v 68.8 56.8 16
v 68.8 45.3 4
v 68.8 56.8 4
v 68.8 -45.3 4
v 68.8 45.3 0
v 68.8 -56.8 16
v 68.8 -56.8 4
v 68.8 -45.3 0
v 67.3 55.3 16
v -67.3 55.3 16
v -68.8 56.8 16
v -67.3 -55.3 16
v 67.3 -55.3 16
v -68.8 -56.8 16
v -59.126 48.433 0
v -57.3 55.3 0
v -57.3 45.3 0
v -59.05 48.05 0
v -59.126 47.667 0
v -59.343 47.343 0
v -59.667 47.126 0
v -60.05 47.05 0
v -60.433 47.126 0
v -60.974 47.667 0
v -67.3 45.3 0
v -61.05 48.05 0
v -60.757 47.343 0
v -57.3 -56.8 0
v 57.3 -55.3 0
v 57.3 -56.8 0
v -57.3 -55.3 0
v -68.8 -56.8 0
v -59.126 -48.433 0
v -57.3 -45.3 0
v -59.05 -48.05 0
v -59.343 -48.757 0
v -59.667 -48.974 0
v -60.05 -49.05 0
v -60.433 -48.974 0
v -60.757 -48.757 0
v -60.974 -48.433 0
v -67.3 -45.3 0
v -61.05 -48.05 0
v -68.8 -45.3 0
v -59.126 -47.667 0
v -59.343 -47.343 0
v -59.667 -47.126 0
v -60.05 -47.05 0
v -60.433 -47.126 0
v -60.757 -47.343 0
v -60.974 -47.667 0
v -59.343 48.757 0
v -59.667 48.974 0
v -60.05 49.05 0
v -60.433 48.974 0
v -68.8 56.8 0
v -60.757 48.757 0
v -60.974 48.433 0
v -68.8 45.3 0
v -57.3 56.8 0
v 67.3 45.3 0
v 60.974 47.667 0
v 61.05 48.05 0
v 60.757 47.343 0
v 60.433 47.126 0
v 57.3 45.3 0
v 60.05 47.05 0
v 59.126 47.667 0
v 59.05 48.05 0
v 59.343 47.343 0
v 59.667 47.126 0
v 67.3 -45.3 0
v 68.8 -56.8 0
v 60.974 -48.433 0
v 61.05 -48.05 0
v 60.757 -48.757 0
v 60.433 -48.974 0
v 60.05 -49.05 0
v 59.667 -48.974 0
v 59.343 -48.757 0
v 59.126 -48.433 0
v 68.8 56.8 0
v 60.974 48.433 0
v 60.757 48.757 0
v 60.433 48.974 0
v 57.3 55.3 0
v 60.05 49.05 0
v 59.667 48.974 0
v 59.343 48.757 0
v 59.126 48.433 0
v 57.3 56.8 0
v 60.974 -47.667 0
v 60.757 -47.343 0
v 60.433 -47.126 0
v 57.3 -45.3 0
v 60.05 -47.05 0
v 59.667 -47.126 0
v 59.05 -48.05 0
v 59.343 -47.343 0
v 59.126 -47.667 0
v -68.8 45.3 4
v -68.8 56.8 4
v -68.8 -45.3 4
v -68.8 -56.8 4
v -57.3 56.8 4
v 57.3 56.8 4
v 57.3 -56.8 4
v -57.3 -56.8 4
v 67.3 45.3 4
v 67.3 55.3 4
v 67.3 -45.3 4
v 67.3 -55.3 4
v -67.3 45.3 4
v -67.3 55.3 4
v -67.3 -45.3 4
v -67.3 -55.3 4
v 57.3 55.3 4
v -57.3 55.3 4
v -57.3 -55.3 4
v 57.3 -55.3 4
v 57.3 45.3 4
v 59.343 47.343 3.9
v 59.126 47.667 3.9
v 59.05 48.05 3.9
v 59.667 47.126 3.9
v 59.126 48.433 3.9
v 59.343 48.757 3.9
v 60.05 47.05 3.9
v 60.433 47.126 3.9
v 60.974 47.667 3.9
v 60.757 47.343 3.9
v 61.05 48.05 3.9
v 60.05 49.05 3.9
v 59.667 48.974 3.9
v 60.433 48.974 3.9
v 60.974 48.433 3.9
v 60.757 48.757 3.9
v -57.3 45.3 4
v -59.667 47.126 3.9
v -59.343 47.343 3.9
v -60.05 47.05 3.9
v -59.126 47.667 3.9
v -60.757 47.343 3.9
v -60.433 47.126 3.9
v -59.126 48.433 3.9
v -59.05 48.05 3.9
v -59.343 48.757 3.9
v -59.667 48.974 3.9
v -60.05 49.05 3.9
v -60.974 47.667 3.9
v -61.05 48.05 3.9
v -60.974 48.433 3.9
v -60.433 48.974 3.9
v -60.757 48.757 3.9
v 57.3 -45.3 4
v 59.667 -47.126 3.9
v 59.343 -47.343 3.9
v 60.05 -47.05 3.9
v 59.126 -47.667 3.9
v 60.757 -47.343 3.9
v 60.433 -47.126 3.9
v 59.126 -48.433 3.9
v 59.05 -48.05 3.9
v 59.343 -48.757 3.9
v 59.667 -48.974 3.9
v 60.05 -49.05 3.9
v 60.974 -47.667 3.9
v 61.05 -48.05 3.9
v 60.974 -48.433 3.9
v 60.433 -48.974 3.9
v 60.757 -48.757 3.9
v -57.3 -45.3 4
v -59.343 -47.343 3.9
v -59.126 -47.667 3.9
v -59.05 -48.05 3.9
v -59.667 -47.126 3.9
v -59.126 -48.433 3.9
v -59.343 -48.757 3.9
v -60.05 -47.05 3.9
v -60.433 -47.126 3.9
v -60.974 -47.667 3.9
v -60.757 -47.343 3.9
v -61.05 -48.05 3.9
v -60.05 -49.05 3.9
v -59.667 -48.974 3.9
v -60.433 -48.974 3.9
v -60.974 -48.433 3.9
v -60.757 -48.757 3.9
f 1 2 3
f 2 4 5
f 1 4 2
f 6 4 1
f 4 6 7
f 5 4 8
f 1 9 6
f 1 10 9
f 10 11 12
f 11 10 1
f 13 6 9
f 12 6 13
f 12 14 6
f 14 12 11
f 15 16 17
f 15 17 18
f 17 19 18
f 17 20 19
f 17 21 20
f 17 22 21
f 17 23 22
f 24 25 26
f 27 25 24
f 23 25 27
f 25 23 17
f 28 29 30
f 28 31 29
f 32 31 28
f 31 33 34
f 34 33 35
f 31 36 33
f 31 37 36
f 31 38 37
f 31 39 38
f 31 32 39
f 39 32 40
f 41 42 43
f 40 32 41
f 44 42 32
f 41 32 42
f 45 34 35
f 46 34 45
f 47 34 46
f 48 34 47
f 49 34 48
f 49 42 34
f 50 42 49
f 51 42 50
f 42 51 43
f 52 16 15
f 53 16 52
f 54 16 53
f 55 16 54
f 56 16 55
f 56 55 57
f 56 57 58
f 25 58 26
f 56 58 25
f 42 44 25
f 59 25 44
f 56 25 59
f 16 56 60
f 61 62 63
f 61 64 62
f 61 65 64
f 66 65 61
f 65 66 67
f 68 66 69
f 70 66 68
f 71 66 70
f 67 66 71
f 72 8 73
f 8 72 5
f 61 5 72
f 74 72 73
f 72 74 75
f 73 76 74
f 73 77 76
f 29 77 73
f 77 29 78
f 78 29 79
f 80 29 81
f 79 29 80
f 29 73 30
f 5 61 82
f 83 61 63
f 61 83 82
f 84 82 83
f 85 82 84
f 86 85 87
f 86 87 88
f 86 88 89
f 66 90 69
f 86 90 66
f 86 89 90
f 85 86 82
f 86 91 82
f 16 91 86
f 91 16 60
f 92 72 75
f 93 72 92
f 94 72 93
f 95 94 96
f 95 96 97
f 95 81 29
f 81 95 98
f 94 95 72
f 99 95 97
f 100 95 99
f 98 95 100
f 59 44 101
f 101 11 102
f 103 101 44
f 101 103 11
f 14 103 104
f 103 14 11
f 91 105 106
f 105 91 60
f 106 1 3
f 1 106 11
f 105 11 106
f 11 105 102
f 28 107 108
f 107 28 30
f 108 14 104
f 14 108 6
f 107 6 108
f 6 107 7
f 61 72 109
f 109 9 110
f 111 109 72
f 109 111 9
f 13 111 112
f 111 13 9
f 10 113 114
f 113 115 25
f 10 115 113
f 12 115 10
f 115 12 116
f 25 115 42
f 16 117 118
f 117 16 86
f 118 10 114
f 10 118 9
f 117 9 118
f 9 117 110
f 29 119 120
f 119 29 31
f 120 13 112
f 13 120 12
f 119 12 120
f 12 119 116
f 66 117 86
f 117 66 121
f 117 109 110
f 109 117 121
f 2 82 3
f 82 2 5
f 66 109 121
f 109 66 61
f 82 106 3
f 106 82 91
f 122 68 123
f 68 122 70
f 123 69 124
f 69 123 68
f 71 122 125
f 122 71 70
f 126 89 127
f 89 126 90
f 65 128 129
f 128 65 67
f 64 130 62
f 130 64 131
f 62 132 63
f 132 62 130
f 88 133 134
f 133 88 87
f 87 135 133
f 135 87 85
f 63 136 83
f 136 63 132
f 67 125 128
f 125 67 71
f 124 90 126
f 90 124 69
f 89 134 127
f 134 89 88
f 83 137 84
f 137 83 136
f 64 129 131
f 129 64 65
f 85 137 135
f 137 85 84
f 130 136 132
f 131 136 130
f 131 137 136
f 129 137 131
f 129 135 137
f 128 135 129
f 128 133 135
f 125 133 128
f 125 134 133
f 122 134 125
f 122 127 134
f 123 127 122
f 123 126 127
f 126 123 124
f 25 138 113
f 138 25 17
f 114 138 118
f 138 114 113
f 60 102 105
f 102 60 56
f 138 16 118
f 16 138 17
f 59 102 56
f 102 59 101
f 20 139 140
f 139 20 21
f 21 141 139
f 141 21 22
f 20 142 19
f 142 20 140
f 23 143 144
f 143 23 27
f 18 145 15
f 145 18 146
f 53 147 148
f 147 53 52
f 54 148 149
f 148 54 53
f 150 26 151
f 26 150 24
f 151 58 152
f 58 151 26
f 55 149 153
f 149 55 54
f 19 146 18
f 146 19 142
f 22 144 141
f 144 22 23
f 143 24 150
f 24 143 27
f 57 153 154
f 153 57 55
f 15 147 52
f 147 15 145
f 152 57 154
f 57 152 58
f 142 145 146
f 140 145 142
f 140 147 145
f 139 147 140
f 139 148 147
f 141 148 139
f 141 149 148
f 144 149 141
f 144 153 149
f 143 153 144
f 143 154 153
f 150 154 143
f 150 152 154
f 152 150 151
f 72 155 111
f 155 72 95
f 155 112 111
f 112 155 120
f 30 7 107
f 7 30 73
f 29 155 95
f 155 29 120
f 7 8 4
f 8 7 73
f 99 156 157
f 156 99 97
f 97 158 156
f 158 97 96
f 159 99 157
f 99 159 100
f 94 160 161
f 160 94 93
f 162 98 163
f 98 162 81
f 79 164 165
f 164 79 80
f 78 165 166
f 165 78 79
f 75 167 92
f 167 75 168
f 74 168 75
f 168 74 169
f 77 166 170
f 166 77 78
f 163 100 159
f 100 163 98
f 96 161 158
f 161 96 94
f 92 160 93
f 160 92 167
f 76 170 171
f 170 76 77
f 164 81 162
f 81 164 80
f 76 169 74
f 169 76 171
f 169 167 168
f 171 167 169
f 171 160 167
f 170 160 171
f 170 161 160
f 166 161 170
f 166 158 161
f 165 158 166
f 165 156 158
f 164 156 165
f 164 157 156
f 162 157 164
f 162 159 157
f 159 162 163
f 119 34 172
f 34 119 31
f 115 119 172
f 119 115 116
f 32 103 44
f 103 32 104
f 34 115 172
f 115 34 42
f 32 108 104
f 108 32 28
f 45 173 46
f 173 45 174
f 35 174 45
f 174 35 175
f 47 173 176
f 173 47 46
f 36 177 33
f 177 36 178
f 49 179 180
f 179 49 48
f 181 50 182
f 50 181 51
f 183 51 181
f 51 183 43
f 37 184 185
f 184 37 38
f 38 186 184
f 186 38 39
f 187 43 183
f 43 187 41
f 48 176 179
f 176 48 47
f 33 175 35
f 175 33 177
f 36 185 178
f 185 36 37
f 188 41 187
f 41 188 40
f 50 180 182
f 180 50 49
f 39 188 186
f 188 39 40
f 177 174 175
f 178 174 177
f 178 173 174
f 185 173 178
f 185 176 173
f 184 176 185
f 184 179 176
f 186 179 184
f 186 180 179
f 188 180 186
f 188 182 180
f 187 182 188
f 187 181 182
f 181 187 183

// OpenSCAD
// file: consts.scad
//    consts.scad
//    Constant values for OpenSCAD model 
//
//    Copyright (C) 2026 Clear Creek Scientific
//
//    This program is free software: you can redistribute it and/or modify
//    it under the terms of the GNU General Public License as published by
//    the Free Software Foundation, either version 3 of the License, or
//    (at your option) any later version.
//
//    This program is distributed in the hope that it will be useful,
//    but WITHOUT ANY WARRANTY; without even the implied warranty of
//    MERCHANTABILITY or FITNESS FOR A PARTICULAR PURPOSE.  See the
//    GNU General Public License for more details.
//
//    You should have received a copy of the GNU General Public License
//    along with this program.  If not, see <https://www.gnu.org/licenses/>.

WALL_WIDTH = 1.5;
TAB_WIDTH = 8;
HALF_TAB_WIDTH = 0.5 * TAB_WIDTH;
TAB_HOLE_RADIUS = 1;
TAB_CORNER_RADIUS=1;
DRAIN_HOLE_HEIGHT = 5.0;
DRAIN_HOLE_RADIUS = 2.0;
SCREW_HOLE_HEIGHT = 2.0 * WALL_WIDTH;
SCREW_HOLE_RADIUS = 1.0;
SCREW_HEAD_HEIGHT = 0.5*WALL_WIDTH;
SCREW_HEAD_RADIUS = 2.5;

BATTERY_INNER_X_DIM = 69.2;
BATTERY_INNER_Y_DIM = 19.0;
BATTERY_WALL_HEIGHT = BATTERY_INNER_Y_DIM + WALL_WIDTH + 5.0;
BATTERY_OUTER_X_DIM = BATTERY_INNER_X_DIM + 2*WALL_WIDTH;
BATTERY_OUTER_Y_DIM = BATTERY_INNER_Y_DIM + 2*WALL_WIDTH;
BATTERY_X_OFFSET = 6; 

WIRETIE_INNER_X_DIM = 69.2;
WIRETIE_INNER_Y_DIM = 30.0;
WIRETIE_WALL_HEIGHT = 15.0; 
WIRETIE_OUTER_X_DIM = WIRETIE_INNER_X_DIM + 2*WALL_WIDTH;
WIRETIE_OUTER_Y_DIM = WIRETIE_INNER_Y_DIM + 2*WALL_WIDTH;
WIRETIE_X_OFFSET = 6;

PANEL_WALL_HEIGHT = 8;
PANEL_INNER_X_DIM = 138;
PANEL_INNER_Y_DIM = 114;
PANEL_OUTER_X_DIM = PANEL_INNER_X_DIM + 2*WALL_WIDTH;
PANEL_OUTER_Y_DIM = PANEL_INNER_Y_DIM + 2*WALL_WIDTH;
PANEL_CENTER_BOX_WIDTH = 30;

PANEL_CENTER_X_LEN = 52.5;
PANEL_CENTER_Y_LEN = 41.0;

MOUNT_INNER_X_DIM = 33.0;
MOUNT_INNER_Y_DIM = MOUNT_INNER_X_DIM;
MOUNT_WALL_HEIGHT = 36.0;
MOUNT_OUTER_X_DIM = MOUNT_INNER_X_DIM + 2*WALL_WIDTH;
MOUNT_OUTER_Y_DIM = MOUNT_INNER_Y_DIM + 2*WALL_WIDTH;

CHARGER_INNER_X_DIM = MOUNT_INNER_X_DIM;
CHARGER_INNER_Y_DIM = MOUNT_INNER_Y_DIM;
CHARGER_WALL_HEIGHT = 20.0;
CHARGER_OUTER_X_DIM = CHARGER_INNER_X_DIM + 2*WALL_WIDTH;
CHARGER_OUTER_Y_DIM = CHARGER_INNER_Y_DIM + 2*WALL_WIDTH;

HINGE_TAB_WIDTH = 15.0;
HINGE_TAB_DEPTH = 3.0;
HINGE_TAB_HEIGHT = 16.0;
HINGE_TAB_RADIUS = 3.0;

HINGE_HOLE_DEPTH = HINGE_TAB_DEPTH+0.2;
// Hinge hole needs to accept a 10/32 inch screw
HINGE_HOLE_DIAMETER = 6;
HINGE_HOLE_RADIUS = 0.5*HINGE_HOLE_DIAMETER;
HINGE_HOLE_OFFSET = HINGE_TAB_HEIGHT - (HINGE_HOLE_RADIUS+3);

HINGE_GAP = 3.1;
HINGE_SUPPORT_OVERHANG = 2.0;

SKIRT_WALL_HEIGHT = 16;
SKIRT_INNER_X_DIM = PANEL_INNER_X_DIM - 2*(WALL_WIDTH+0.2);
SKIRT_INNER_Y_DIM = PANEL_INNER_Y_DIM - 2*(WALL_WIDTH+0.2);
SKIRT_OUTER_X_DIM = SKIRT_INNER_X_DIM + 2*WALL_WIDTH;
SKIRT_OUTER_Y_DIM = SKIRT_INNER_Y_DIM + 2*WALL_WIDTH;
SKIRT_TAB_OFFSET = 4 * WALL_WIDTH;
SKIRT_TAB_DIM = 2*SCREW_HEAD_RADIUS+SKIRT_TAB_OFFSET+0.5;
SKIRT_TAB_HEIGHT = 4; 
// file: common.scad
//    battery_box.scad
//    OpenSCAD model for a box for a PKCELL 18650 lithium-ion battery 
//
//    Copyright (C) 2026 Clear Creek Scientific
//
//    This program is free software: you can redistribute it and/or modify
//    it under the terms of the GNU General Public License as published by
//    the Free Software Foundation, either version 3 of the License, or
//    (at your option) any later version.
//
//    This program is distributed in the hope that it will be useful,
//    but WITHOUT ANY WARRANTY; without even the implied warranty of
//    MERCHANTABILITY or FITNESS FOR A PARTICULAR PURPOSE.  See the
//    GNU General Public License for more details.
//
//    You should have received a copy of the GNU General Public License
//    along with this program.  If not, see <https://www.gnu.org/licenses/>.

include <consts.scad>
use <MCAD/boxes.scad>
use <MCAD/regular_shapes.scad>

module tab(height) {
    difference() {
        roundedBox(size=[TAB_WIDTH,TAB_WIDTH,height],radius=TAB_CORNER_RADIUS,sidesonly=true);
        translate([0,0,-height]) {
            cylinder(2*height,TAB_HOLE_RADIUS,TAB_HOLE_RADIUS);
        }
    }
}

module drain_hole() {
    //cylinder(h=DRAIN_HOLE_HEIGHT,r=DRAIN_HOLE_RADIUS,center=true);
    cube([DRAIN_HOLE_HEIGHT,DRAIN_HOLE_HEIGHT,DRAIN_HOLE_HEIGHT],center=true);
}

module screw_hole() {
    union() {
        cylinder(h=SCREW_HOLE_HEIGHT,r=SCREW_HOLE_RADIUS,center=true);
        translate([0,0,0.5*WALL_WIDTH]) {
            cylinder(h=SCREW_HEAD_HEIGHT,r=SCREW_HEAD_RADIUS,center=true);
        }
    }
}

module reverse_screw_hole() {
    union() {
        cylinder(h=SCREW_HEAD_HEIGHT,r=SCREW_HEAD_RADIUS,center=true);
        translate([0,0,0.5*WALL_WIDTH]) {
            cylinder(h=SCREW_HOLE_HEIGHT,r=SCREW_HOLE_RADIUS,center=true);
        }
    }
}

module hinge_tab(hole_offset) {
    rotate([90,0,0]) {
        difference() {
            roundedBox(size=[HINGE_TAB_WIDTH,HINGE_TAB_HEIGHT,HINGE_TAB_DEPTH],radius=HINGE_TAB_RADIUS,sidesonly=true);
            translate([0,hole_offset,0]) {
                cylinder(h=HINGE_HOLE_DEPTH+0.2,r=HINGE_HOLE_RADIUS,center=true);
            }
        }
    }
}

BASE_X_DIM = MOUNT_OUTER_X_DIM;
BASE_Y_DIM = MOUNT_OUTER_Y_DIM+2*(TAB_WIDTH-WALL_WIDTH);

module mount_hinge_base() {
    union () {
        // main base 
        difference() {
            roundedBox(size=[BASE_X_DIM,BASE_Y_DIM,WALL_WIDTH],radius=TAB_CORNER_RADIUS,sidesonly=true);

            // cut out screw holes
            translate([0.5*(BASE_X_DIM-TAB_WIDTH),0.5*(BASE_Y_DIM-TAB_WIDTH),0]) {
                screw_hole();
            }
            translate([-0.5*(BASE_X_DIM-TAB_WIDTH),0.5*(BASE_Y_DIM-TAB_WIDTH),0]) {
                screw_hole();
            }
            translate([0.5*(BASE_X_DIM-TAB_WIDTH),-0.5*(BASE_Y_DIM-TAB_WIDTH),0]) {
                screw_hole();
            }
            translate([-0.5* (BASE_X_DIM-TAB_WIDTH),-0.5*(BASE_Y_DIM-TAB_WIDTH),0]) {
                screw_hole();
            }
        } // difference

        // support base for hinges
        translate([0,0,0.5*HINGE_TAB_DEPTH]) {
            cube([HINGE_TAB_WIDTH+2*HINGE_SUPPORT_OVERHANG,4*HINGE_TAB_DEPTH+HINGE_GAP+2*HINGE_SUPPORT_OVERHANG,HINGE_TAB_DEPTH],center=true);
        }
    }
}
// main file
//    skirt.scad
//    OpenSCAD model for a CCS Data Logger solar pan skirt
//
//    Copyright (C) 2026 Clear Creek Scientific
//
//    This program is free software: you can redistribute it and/or modify
//    it under the terms of the GNU General Public License as published by
//    the Free Software Foundation, either version 3 of the License, or
//    (at your option) any later version.
//
//    This program is distributed in the hope that it will be useful,
//    but WITHOUT ANY WARRANTY; without even the implied warranty of
//    MERCHANTABILITY or FITNESS FOR A PARTICULAR PURPOSE.  See the
//    GNU General Public License for more details.
//
//    You should have received a copy of the GNU General Public License
//    along with this program.  If not, see <https://www.gnu.org/licenses/>.

include <common.scad>

$fa=1;
$fs=0.4;



module basic_solar_skirt() {
    difference() {
   
        // outer box
        translate([0,0,0.5*SKIRT_WALL_HEIGHT]) {
             cube([SKIRT_OUTER_X_DIM,SKIRT_OUTER_Y_DIM,SKIRT_WALL_HEIGHT],center=true); 
        }

        // cut out inner box
        translate([0,0,0.5*SKIRT_WALL_HEIGHT]) {
            cube([SKIRT_INNER_X_DIM,SKIRT_INNER_Y_DIM,SKIRT_WALL_HEIGHT+0.2],center=true); 
        }
    } // difference
}

module corner_tab() {
//color([1.0,0,0]) {
    difference() {
        cube([SKIRT_TAB_DIM,SKIRT_TAB_DIM,SKIRT_TAB_HEIGHT],center=true); 
        translate([0.5*(SKIRT_TAB_OFFSET),0.5*(SKIRT_TAB_OFFSET),-0.5*(SKIRT_TAB_HEIGHT)]) { 
            cylinder(h=2*SKIRT_TAB_HEIGHT-0.2,r=1,center=true);
        }
    }
//}
}

module skirt() {


    union() {
        basic_solar_skirt();

        translate([0.5*(SKIRT_OUTER_X_DIM-SKIRT_TAB_DIM),0.5*(SKIRT_OUTER_Y_DIM-SKIRT_TAB_DIM),0.5*SKIRT_TAB_HEIGHT]) {
            rotate([0,0,180]) {
                corner_tab();
            }
        }
        translate([-0.5*(SKIRT_OUTER_X_DIM-SKIRT_TAB_DIM),0.5*(SKIRT_OUTER_Y_DIM-SKIRT_TAB_DIM),0.5*SKIRT_TAB_HEIGHT]) {
            rotate([0,0,-90]) {
                corner_tab();
            }
        }
        translate([0.5*(SKIRT_OUTER_X_DIM-SKIRT_TAB_DIM),-0.5*(SKIRT_OUTER_Y_DIM-SKIRT_TAB_DIM),0.5*SKIRT_TAB_HEIGHT]) {
            rotate([0,0,90]) {
                corner_tab();
            }
        }
        translate([-0.5*(SKIRT_OUTER_X_DIM-SKIRT_TAB_DIM),-0.5*(SKIRT_OUTER_Y_DIM-SKIRT_TAB_DIM),0.5*SKIRT_TAB_HEIGHT]) {
            rotate([0,0,0]) {
                corner_tab();
            }
        }
    } // union
}

skirt();
